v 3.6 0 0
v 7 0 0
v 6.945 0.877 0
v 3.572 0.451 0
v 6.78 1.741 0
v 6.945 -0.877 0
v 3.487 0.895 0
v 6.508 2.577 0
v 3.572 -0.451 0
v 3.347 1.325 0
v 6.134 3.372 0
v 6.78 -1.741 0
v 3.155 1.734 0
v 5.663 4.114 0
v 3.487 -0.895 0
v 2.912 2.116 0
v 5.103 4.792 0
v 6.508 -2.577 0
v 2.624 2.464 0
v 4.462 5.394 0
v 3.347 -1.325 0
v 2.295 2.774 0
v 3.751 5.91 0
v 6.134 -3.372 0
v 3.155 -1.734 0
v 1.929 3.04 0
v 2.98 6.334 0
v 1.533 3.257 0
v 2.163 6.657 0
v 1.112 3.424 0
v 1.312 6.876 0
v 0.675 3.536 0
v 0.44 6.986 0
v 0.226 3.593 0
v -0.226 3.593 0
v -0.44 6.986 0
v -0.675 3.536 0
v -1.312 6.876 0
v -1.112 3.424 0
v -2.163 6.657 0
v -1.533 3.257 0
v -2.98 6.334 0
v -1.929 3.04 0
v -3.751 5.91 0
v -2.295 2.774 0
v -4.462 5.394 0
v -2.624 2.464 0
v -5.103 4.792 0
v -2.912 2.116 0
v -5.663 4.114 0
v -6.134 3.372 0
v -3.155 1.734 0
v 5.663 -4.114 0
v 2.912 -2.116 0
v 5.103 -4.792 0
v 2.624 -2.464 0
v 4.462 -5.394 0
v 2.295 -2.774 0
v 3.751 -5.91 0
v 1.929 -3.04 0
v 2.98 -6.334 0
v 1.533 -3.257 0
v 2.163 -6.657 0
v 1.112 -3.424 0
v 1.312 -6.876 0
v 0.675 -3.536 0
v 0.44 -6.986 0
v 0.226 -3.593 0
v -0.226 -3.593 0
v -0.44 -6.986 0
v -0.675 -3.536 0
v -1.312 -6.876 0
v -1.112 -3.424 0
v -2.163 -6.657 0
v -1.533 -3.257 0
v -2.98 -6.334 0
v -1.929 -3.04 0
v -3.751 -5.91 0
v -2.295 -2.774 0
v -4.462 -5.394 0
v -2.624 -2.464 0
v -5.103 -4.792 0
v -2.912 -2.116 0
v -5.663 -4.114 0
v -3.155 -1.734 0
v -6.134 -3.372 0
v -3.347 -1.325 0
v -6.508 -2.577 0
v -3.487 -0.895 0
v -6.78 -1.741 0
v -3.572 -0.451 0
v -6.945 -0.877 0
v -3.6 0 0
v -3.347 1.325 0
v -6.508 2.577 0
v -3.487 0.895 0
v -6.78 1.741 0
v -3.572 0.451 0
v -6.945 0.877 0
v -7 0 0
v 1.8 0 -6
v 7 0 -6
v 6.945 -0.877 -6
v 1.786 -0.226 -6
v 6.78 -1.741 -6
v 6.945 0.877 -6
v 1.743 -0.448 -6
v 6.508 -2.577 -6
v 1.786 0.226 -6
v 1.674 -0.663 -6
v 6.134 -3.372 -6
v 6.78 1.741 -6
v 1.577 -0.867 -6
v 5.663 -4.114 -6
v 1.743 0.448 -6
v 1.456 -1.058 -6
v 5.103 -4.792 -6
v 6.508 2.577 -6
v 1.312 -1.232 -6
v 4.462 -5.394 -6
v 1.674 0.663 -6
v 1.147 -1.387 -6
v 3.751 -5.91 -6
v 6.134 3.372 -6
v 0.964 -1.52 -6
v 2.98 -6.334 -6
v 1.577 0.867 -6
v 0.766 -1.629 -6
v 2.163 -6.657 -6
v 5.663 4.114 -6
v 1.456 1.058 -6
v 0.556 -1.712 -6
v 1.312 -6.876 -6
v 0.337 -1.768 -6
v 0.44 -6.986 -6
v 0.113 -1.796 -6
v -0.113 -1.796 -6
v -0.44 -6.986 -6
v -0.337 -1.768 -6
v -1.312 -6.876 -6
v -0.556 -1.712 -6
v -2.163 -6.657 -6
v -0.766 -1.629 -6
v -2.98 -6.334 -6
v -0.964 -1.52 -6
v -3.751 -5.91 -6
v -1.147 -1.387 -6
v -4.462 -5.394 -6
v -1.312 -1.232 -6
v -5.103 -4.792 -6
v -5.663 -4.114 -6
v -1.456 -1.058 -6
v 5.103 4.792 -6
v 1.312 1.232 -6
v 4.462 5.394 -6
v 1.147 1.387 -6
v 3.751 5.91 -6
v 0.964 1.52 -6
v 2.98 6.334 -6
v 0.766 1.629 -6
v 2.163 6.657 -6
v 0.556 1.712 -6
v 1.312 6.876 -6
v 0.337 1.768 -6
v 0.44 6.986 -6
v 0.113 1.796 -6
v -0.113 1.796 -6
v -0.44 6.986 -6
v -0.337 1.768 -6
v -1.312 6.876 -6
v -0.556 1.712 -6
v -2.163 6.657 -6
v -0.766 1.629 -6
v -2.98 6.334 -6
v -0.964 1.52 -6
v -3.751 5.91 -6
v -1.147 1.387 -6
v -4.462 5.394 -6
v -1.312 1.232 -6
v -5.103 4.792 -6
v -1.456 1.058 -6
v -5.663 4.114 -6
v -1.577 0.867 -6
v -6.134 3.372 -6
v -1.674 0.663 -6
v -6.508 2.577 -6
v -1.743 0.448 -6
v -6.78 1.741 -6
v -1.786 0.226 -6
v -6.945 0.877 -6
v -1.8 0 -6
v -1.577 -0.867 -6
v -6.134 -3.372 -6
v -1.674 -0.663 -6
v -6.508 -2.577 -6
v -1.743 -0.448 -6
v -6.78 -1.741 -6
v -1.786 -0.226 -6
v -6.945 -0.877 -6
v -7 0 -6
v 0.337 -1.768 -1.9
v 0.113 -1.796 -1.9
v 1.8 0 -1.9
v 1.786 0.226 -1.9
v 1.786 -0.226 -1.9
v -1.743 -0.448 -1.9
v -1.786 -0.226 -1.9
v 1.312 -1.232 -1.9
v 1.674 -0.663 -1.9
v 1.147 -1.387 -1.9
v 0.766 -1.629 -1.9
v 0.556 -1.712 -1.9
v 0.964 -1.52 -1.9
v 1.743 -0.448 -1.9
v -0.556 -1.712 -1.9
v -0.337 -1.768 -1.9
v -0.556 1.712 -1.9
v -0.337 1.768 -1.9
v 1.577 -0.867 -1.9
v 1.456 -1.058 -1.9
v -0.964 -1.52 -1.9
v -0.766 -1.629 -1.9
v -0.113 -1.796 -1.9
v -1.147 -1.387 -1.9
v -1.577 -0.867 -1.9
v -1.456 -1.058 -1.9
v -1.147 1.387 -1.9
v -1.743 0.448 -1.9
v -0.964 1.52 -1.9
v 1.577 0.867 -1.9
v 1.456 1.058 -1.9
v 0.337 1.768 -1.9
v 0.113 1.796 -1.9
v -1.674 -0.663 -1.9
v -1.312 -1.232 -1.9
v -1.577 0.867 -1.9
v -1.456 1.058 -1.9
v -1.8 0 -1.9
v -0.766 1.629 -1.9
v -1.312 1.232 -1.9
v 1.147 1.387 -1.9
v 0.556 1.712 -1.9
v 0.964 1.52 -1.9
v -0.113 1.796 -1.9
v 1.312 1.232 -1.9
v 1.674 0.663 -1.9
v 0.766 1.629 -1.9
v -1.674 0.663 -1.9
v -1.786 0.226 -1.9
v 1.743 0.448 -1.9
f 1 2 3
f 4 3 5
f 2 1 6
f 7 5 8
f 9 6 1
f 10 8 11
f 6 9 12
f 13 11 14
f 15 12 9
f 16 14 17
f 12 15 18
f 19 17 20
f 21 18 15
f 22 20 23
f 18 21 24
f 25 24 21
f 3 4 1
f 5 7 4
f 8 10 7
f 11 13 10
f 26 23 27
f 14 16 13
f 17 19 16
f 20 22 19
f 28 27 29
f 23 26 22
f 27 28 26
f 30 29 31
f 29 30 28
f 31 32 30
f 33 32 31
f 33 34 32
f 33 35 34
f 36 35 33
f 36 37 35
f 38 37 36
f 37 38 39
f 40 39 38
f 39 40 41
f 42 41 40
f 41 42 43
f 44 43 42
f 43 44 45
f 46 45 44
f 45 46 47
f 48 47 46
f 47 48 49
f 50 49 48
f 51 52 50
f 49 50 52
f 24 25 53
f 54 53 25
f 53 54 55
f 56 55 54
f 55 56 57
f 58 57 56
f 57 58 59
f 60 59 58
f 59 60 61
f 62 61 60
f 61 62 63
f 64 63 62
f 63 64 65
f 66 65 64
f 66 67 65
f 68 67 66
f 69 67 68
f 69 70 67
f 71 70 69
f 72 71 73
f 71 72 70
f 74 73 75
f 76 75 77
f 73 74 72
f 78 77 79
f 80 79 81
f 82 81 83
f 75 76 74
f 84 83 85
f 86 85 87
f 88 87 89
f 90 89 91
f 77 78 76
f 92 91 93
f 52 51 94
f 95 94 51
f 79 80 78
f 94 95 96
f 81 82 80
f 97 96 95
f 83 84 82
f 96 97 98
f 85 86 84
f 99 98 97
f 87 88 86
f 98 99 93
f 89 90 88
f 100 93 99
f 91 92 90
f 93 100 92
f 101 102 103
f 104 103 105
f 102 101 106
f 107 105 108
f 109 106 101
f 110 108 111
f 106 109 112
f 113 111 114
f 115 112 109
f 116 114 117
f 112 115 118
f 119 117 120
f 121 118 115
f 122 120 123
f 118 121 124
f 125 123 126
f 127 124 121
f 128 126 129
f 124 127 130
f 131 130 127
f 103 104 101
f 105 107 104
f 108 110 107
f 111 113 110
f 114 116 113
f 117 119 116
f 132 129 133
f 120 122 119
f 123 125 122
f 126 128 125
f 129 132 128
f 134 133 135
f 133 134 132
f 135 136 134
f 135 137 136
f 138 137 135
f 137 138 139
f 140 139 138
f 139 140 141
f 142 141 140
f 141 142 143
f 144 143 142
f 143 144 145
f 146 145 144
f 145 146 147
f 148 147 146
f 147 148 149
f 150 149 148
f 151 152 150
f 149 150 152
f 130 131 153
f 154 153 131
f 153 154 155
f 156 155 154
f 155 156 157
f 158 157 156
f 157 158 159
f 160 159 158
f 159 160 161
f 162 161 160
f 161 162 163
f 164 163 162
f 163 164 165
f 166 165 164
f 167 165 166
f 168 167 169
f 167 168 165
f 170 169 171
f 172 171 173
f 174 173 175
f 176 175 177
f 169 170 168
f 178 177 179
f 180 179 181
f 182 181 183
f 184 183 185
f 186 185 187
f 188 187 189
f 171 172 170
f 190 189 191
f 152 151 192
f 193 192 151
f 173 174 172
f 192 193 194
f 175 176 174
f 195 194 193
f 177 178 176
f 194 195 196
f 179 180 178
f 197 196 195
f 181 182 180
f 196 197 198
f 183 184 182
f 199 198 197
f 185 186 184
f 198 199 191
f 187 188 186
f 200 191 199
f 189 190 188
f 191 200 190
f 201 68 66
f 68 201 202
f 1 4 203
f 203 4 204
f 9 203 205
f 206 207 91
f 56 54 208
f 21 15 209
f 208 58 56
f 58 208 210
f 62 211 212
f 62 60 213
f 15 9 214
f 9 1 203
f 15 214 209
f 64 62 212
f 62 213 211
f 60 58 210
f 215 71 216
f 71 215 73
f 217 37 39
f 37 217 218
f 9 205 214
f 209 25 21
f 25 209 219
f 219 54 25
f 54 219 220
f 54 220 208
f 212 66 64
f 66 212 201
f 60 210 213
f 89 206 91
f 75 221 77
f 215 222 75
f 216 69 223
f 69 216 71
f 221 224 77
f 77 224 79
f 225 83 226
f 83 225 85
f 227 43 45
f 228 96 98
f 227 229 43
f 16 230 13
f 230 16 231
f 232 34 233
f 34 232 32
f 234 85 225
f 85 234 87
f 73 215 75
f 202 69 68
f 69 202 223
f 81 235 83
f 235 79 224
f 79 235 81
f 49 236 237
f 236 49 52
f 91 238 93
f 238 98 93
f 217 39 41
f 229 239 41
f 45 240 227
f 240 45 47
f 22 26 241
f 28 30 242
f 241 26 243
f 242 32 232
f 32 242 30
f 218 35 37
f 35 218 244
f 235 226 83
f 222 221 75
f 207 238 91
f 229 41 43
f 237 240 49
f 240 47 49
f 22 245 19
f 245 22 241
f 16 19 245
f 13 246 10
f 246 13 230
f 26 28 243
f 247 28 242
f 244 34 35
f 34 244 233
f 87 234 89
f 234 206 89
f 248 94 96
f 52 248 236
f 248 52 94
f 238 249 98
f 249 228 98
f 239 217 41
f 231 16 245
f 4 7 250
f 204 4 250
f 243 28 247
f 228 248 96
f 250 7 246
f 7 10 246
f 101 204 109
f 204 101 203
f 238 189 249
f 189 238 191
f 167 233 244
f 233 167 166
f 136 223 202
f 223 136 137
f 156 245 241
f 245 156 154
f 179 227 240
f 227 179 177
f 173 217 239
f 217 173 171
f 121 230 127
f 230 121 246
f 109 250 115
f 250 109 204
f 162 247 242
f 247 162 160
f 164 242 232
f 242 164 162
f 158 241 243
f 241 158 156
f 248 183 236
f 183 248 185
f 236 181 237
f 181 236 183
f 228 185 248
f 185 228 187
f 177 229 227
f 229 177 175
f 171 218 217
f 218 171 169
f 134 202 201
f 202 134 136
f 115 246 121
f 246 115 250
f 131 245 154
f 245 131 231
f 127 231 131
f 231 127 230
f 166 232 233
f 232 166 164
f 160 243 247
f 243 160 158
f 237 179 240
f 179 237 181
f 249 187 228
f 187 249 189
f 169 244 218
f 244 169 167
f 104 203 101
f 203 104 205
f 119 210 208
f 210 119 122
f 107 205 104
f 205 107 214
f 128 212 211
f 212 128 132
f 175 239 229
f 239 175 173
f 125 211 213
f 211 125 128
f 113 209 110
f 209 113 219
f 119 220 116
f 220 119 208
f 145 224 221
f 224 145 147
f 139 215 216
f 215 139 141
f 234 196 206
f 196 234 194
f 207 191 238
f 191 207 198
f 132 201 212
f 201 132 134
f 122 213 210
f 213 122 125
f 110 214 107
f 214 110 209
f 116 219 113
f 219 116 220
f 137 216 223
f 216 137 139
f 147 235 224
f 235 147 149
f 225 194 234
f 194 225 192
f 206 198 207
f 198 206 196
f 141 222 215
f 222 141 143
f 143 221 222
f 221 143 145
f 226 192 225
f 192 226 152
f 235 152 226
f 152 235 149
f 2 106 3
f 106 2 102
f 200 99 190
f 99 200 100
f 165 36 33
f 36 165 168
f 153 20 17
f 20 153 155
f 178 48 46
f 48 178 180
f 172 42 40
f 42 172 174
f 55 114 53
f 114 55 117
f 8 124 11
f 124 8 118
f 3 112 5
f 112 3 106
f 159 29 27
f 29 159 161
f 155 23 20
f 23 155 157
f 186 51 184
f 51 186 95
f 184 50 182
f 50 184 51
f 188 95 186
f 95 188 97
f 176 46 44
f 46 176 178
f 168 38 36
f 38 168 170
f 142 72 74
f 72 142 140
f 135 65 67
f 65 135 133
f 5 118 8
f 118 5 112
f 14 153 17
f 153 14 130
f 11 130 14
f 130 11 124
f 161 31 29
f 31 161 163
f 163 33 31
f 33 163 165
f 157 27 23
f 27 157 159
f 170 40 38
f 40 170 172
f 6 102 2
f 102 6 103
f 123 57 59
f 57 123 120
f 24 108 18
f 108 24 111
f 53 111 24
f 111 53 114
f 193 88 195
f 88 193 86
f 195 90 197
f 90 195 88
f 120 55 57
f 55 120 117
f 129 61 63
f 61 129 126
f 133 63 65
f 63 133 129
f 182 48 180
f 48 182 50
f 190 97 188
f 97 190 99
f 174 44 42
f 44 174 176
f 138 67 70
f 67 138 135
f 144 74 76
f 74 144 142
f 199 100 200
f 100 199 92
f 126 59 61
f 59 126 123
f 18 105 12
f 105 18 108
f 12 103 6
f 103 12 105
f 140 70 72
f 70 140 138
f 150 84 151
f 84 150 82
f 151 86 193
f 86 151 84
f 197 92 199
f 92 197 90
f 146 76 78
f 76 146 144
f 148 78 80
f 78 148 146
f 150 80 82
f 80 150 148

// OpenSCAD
$fn = 50;


difference() {
	union() {
		translate(v = [0, 0, -6.0000000000]) {
			cylinder(h = 6, r = 7.0000000000);
		}
	}
	union() {
		translate(v = [0, 0, 0]) {
			rotate(a = [0, 0, 0]) {
				difference() {
					union() {
						translate(v = [0, 0, -6.0000000000]) {
							cylinder(h = 6, r = 1.5000000000);
						}
						translate(v = [0, 0, -1.9000000000]) {
							cylinder(h = 1.9000000000, r1 = 1.8000000000, r2 = 3.6000000000);
						}
						translate(v = [0, 0, -6.0000000000]) {
							cylinder(h = 6, r = 1.8000000000);
						}
						translate(v = [0, 0, -6.0000000000]) {
							cylinder(h = 6, r = 1.5000000000);
						}
					}
					union();
				}
			}
		}
	}
}
